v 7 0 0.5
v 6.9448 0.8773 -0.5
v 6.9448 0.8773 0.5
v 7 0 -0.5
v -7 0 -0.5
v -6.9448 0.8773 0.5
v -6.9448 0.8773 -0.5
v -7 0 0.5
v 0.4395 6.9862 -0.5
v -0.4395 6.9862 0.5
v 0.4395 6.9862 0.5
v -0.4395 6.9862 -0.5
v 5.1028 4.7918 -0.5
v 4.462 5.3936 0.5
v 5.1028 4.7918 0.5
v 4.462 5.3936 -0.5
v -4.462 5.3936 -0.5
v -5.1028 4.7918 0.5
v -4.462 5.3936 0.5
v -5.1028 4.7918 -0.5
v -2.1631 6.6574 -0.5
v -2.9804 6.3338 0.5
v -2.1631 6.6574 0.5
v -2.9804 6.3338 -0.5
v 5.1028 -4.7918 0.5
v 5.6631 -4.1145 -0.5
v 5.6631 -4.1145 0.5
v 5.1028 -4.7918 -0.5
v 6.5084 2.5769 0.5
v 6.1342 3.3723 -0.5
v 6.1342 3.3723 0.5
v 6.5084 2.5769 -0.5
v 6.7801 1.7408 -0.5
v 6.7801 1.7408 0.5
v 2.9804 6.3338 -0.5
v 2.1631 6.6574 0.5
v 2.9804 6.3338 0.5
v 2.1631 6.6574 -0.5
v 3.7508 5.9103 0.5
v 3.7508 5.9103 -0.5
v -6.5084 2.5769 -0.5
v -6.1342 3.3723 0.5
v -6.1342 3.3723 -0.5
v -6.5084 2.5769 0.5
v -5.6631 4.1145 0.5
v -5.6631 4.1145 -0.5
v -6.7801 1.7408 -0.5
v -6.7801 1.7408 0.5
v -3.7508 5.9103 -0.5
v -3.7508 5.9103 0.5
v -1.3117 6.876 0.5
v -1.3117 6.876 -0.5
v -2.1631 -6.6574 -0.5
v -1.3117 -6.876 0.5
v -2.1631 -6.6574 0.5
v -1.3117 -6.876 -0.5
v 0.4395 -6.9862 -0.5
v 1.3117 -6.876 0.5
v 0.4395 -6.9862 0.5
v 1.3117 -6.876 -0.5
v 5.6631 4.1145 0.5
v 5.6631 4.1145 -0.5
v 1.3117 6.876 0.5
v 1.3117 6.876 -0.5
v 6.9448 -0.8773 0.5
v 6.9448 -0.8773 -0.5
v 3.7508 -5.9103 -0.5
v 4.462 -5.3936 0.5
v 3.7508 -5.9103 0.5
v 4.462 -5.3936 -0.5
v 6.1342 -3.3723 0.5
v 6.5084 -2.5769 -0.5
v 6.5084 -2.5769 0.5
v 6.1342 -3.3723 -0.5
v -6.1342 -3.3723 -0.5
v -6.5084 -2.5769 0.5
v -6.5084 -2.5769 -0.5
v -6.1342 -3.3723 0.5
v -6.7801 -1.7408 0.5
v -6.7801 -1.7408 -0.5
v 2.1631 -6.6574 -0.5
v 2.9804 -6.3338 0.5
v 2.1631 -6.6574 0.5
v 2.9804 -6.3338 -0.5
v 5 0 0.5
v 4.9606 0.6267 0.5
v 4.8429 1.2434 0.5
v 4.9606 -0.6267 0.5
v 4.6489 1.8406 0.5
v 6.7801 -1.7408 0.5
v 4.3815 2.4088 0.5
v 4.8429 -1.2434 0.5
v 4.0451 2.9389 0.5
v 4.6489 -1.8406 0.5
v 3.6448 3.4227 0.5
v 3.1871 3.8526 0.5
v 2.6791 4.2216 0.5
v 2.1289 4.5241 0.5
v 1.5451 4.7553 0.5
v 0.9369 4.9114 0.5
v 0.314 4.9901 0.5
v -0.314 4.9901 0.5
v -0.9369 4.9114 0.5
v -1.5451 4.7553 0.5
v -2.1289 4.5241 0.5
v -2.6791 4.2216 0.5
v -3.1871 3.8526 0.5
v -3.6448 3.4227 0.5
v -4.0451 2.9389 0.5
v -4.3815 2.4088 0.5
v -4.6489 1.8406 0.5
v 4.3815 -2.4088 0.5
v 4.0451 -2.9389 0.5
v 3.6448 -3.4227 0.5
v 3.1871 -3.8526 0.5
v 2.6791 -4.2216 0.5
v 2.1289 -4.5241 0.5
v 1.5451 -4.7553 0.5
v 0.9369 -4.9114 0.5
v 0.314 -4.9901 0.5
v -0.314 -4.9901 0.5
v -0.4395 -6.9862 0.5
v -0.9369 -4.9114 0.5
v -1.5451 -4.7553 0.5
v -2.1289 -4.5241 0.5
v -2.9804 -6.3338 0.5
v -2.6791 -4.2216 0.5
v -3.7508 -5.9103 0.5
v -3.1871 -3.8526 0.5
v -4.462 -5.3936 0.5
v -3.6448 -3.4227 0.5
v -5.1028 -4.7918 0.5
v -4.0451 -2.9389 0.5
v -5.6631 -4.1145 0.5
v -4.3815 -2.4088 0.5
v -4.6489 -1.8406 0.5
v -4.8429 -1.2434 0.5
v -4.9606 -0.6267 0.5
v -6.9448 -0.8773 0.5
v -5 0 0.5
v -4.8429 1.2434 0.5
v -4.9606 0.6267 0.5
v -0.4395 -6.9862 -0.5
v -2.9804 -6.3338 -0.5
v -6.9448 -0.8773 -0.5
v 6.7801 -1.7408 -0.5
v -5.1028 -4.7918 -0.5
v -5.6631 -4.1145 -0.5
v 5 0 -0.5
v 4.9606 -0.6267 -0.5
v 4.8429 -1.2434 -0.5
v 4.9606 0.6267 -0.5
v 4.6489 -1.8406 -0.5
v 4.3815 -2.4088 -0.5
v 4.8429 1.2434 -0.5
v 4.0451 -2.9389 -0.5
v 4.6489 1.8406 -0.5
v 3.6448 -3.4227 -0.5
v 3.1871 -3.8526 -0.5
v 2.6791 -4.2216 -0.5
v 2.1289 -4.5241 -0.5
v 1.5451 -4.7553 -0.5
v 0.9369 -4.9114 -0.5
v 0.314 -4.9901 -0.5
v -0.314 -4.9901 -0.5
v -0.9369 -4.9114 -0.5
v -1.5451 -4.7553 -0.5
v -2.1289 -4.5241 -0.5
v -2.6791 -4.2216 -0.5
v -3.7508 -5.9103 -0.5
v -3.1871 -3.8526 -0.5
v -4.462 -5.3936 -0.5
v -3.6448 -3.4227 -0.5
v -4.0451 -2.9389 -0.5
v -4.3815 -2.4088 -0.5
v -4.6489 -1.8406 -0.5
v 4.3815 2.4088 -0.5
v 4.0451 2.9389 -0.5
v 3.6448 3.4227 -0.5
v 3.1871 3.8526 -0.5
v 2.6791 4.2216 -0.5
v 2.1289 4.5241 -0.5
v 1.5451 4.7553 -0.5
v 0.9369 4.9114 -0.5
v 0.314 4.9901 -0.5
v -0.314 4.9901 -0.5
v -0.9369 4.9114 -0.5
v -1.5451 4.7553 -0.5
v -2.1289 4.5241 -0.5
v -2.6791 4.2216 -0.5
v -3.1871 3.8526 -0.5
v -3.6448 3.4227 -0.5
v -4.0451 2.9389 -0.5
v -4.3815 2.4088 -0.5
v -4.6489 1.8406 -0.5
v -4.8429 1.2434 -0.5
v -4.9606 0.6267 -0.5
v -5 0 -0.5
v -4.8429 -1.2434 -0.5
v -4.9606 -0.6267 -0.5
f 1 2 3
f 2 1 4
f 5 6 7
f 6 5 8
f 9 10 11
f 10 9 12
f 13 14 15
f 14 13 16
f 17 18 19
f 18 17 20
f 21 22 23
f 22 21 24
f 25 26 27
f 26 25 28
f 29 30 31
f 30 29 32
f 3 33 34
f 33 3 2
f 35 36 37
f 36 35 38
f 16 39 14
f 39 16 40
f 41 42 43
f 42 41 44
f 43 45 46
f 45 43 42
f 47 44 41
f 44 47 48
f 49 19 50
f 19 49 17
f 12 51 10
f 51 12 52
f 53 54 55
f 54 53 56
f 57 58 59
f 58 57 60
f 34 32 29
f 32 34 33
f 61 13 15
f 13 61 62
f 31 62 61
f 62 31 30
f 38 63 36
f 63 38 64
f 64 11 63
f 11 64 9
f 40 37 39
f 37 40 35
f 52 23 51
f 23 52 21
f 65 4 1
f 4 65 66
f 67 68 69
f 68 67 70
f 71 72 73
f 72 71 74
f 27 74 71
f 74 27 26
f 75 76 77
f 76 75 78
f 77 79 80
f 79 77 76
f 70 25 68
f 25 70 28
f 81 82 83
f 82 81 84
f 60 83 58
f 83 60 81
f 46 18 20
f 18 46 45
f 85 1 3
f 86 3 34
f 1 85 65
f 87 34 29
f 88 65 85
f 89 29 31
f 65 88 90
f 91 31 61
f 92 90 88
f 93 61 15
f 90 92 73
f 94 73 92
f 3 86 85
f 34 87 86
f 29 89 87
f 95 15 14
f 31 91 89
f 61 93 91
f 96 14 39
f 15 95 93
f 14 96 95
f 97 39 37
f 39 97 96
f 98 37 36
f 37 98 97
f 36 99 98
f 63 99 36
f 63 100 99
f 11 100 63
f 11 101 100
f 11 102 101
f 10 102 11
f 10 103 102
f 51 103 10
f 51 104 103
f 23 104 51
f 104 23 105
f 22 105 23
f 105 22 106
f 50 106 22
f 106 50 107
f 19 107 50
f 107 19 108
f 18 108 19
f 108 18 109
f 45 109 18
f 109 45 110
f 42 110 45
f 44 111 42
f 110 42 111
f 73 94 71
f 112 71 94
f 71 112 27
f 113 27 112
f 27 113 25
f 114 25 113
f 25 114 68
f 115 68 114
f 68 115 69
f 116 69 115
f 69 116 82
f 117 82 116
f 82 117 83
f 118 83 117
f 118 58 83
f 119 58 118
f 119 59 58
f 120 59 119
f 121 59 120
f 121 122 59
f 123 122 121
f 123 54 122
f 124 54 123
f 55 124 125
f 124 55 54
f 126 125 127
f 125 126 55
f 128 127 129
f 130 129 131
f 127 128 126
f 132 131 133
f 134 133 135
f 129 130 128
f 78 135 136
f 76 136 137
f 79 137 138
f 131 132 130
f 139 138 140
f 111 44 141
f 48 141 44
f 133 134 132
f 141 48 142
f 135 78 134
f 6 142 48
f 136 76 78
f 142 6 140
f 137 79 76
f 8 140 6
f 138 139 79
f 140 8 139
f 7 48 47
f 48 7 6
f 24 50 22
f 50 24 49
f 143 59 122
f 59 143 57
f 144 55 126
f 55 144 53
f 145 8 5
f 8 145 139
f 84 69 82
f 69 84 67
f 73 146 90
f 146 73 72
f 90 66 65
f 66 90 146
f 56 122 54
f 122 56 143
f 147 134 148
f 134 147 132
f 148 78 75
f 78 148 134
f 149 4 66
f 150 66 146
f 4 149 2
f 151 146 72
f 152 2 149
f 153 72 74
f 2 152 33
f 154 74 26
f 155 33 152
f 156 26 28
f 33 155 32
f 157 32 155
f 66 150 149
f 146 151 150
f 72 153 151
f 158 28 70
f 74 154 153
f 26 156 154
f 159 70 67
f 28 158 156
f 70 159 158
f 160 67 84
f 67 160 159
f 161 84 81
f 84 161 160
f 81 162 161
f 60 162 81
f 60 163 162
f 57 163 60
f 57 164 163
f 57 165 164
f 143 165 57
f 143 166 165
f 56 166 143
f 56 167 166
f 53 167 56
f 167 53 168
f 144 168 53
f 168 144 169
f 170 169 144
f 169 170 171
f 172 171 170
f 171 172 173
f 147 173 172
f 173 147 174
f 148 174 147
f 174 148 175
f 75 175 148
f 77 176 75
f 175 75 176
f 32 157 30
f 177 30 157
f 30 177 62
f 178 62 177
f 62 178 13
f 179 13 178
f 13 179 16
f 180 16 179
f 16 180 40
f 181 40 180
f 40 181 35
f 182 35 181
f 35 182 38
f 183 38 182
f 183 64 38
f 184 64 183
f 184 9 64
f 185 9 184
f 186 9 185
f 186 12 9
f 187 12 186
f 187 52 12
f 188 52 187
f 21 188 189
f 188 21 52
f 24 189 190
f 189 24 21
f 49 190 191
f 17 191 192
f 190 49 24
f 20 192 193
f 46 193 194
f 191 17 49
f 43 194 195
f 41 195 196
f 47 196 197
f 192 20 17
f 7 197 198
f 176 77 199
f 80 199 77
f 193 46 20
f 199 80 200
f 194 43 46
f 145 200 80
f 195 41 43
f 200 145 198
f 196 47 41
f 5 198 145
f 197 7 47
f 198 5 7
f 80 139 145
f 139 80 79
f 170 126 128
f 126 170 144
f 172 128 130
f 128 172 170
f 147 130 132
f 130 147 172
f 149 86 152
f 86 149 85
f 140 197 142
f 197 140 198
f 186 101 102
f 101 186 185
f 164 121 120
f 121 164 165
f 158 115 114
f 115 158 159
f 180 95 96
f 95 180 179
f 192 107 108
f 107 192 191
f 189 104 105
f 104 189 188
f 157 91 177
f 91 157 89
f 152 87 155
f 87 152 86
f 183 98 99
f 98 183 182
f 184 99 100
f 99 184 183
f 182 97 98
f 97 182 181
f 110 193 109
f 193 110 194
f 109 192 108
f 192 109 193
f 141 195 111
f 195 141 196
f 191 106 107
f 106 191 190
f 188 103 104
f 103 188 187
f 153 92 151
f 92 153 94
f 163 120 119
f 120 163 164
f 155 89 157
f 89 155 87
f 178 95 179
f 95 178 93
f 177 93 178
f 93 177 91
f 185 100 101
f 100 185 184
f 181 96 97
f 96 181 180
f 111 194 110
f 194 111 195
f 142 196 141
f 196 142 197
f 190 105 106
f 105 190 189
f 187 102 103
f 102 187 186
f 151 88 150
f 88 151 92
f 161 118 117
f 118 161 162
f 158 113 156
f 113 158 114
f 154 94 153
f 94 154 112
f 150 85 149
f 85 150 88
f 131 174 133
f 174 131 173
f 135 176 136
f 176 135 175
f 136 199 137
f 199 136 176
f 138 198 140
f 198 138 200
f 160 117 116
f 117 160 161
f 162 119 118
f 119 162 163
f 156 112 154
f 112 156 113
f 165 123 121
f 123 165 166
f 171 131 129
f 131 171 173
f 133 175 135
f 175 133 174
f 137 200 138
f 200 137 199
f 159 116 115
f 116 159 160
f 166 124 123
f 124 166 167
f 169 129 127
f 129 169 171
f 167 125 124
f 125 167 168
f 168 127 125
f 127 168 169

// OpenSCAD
$fn = 50;


difference() {
	union() {
		translate(v = [0, 0, -0.5000000000]) {
			cylinder(h = 1, r = 7.0000000000);
		}
	}
	union() {
		translate(v = [0, 0, -100.0000000000]) {
			cylinder(h = 200, r = 5.0000000000);
		}
	}
}
